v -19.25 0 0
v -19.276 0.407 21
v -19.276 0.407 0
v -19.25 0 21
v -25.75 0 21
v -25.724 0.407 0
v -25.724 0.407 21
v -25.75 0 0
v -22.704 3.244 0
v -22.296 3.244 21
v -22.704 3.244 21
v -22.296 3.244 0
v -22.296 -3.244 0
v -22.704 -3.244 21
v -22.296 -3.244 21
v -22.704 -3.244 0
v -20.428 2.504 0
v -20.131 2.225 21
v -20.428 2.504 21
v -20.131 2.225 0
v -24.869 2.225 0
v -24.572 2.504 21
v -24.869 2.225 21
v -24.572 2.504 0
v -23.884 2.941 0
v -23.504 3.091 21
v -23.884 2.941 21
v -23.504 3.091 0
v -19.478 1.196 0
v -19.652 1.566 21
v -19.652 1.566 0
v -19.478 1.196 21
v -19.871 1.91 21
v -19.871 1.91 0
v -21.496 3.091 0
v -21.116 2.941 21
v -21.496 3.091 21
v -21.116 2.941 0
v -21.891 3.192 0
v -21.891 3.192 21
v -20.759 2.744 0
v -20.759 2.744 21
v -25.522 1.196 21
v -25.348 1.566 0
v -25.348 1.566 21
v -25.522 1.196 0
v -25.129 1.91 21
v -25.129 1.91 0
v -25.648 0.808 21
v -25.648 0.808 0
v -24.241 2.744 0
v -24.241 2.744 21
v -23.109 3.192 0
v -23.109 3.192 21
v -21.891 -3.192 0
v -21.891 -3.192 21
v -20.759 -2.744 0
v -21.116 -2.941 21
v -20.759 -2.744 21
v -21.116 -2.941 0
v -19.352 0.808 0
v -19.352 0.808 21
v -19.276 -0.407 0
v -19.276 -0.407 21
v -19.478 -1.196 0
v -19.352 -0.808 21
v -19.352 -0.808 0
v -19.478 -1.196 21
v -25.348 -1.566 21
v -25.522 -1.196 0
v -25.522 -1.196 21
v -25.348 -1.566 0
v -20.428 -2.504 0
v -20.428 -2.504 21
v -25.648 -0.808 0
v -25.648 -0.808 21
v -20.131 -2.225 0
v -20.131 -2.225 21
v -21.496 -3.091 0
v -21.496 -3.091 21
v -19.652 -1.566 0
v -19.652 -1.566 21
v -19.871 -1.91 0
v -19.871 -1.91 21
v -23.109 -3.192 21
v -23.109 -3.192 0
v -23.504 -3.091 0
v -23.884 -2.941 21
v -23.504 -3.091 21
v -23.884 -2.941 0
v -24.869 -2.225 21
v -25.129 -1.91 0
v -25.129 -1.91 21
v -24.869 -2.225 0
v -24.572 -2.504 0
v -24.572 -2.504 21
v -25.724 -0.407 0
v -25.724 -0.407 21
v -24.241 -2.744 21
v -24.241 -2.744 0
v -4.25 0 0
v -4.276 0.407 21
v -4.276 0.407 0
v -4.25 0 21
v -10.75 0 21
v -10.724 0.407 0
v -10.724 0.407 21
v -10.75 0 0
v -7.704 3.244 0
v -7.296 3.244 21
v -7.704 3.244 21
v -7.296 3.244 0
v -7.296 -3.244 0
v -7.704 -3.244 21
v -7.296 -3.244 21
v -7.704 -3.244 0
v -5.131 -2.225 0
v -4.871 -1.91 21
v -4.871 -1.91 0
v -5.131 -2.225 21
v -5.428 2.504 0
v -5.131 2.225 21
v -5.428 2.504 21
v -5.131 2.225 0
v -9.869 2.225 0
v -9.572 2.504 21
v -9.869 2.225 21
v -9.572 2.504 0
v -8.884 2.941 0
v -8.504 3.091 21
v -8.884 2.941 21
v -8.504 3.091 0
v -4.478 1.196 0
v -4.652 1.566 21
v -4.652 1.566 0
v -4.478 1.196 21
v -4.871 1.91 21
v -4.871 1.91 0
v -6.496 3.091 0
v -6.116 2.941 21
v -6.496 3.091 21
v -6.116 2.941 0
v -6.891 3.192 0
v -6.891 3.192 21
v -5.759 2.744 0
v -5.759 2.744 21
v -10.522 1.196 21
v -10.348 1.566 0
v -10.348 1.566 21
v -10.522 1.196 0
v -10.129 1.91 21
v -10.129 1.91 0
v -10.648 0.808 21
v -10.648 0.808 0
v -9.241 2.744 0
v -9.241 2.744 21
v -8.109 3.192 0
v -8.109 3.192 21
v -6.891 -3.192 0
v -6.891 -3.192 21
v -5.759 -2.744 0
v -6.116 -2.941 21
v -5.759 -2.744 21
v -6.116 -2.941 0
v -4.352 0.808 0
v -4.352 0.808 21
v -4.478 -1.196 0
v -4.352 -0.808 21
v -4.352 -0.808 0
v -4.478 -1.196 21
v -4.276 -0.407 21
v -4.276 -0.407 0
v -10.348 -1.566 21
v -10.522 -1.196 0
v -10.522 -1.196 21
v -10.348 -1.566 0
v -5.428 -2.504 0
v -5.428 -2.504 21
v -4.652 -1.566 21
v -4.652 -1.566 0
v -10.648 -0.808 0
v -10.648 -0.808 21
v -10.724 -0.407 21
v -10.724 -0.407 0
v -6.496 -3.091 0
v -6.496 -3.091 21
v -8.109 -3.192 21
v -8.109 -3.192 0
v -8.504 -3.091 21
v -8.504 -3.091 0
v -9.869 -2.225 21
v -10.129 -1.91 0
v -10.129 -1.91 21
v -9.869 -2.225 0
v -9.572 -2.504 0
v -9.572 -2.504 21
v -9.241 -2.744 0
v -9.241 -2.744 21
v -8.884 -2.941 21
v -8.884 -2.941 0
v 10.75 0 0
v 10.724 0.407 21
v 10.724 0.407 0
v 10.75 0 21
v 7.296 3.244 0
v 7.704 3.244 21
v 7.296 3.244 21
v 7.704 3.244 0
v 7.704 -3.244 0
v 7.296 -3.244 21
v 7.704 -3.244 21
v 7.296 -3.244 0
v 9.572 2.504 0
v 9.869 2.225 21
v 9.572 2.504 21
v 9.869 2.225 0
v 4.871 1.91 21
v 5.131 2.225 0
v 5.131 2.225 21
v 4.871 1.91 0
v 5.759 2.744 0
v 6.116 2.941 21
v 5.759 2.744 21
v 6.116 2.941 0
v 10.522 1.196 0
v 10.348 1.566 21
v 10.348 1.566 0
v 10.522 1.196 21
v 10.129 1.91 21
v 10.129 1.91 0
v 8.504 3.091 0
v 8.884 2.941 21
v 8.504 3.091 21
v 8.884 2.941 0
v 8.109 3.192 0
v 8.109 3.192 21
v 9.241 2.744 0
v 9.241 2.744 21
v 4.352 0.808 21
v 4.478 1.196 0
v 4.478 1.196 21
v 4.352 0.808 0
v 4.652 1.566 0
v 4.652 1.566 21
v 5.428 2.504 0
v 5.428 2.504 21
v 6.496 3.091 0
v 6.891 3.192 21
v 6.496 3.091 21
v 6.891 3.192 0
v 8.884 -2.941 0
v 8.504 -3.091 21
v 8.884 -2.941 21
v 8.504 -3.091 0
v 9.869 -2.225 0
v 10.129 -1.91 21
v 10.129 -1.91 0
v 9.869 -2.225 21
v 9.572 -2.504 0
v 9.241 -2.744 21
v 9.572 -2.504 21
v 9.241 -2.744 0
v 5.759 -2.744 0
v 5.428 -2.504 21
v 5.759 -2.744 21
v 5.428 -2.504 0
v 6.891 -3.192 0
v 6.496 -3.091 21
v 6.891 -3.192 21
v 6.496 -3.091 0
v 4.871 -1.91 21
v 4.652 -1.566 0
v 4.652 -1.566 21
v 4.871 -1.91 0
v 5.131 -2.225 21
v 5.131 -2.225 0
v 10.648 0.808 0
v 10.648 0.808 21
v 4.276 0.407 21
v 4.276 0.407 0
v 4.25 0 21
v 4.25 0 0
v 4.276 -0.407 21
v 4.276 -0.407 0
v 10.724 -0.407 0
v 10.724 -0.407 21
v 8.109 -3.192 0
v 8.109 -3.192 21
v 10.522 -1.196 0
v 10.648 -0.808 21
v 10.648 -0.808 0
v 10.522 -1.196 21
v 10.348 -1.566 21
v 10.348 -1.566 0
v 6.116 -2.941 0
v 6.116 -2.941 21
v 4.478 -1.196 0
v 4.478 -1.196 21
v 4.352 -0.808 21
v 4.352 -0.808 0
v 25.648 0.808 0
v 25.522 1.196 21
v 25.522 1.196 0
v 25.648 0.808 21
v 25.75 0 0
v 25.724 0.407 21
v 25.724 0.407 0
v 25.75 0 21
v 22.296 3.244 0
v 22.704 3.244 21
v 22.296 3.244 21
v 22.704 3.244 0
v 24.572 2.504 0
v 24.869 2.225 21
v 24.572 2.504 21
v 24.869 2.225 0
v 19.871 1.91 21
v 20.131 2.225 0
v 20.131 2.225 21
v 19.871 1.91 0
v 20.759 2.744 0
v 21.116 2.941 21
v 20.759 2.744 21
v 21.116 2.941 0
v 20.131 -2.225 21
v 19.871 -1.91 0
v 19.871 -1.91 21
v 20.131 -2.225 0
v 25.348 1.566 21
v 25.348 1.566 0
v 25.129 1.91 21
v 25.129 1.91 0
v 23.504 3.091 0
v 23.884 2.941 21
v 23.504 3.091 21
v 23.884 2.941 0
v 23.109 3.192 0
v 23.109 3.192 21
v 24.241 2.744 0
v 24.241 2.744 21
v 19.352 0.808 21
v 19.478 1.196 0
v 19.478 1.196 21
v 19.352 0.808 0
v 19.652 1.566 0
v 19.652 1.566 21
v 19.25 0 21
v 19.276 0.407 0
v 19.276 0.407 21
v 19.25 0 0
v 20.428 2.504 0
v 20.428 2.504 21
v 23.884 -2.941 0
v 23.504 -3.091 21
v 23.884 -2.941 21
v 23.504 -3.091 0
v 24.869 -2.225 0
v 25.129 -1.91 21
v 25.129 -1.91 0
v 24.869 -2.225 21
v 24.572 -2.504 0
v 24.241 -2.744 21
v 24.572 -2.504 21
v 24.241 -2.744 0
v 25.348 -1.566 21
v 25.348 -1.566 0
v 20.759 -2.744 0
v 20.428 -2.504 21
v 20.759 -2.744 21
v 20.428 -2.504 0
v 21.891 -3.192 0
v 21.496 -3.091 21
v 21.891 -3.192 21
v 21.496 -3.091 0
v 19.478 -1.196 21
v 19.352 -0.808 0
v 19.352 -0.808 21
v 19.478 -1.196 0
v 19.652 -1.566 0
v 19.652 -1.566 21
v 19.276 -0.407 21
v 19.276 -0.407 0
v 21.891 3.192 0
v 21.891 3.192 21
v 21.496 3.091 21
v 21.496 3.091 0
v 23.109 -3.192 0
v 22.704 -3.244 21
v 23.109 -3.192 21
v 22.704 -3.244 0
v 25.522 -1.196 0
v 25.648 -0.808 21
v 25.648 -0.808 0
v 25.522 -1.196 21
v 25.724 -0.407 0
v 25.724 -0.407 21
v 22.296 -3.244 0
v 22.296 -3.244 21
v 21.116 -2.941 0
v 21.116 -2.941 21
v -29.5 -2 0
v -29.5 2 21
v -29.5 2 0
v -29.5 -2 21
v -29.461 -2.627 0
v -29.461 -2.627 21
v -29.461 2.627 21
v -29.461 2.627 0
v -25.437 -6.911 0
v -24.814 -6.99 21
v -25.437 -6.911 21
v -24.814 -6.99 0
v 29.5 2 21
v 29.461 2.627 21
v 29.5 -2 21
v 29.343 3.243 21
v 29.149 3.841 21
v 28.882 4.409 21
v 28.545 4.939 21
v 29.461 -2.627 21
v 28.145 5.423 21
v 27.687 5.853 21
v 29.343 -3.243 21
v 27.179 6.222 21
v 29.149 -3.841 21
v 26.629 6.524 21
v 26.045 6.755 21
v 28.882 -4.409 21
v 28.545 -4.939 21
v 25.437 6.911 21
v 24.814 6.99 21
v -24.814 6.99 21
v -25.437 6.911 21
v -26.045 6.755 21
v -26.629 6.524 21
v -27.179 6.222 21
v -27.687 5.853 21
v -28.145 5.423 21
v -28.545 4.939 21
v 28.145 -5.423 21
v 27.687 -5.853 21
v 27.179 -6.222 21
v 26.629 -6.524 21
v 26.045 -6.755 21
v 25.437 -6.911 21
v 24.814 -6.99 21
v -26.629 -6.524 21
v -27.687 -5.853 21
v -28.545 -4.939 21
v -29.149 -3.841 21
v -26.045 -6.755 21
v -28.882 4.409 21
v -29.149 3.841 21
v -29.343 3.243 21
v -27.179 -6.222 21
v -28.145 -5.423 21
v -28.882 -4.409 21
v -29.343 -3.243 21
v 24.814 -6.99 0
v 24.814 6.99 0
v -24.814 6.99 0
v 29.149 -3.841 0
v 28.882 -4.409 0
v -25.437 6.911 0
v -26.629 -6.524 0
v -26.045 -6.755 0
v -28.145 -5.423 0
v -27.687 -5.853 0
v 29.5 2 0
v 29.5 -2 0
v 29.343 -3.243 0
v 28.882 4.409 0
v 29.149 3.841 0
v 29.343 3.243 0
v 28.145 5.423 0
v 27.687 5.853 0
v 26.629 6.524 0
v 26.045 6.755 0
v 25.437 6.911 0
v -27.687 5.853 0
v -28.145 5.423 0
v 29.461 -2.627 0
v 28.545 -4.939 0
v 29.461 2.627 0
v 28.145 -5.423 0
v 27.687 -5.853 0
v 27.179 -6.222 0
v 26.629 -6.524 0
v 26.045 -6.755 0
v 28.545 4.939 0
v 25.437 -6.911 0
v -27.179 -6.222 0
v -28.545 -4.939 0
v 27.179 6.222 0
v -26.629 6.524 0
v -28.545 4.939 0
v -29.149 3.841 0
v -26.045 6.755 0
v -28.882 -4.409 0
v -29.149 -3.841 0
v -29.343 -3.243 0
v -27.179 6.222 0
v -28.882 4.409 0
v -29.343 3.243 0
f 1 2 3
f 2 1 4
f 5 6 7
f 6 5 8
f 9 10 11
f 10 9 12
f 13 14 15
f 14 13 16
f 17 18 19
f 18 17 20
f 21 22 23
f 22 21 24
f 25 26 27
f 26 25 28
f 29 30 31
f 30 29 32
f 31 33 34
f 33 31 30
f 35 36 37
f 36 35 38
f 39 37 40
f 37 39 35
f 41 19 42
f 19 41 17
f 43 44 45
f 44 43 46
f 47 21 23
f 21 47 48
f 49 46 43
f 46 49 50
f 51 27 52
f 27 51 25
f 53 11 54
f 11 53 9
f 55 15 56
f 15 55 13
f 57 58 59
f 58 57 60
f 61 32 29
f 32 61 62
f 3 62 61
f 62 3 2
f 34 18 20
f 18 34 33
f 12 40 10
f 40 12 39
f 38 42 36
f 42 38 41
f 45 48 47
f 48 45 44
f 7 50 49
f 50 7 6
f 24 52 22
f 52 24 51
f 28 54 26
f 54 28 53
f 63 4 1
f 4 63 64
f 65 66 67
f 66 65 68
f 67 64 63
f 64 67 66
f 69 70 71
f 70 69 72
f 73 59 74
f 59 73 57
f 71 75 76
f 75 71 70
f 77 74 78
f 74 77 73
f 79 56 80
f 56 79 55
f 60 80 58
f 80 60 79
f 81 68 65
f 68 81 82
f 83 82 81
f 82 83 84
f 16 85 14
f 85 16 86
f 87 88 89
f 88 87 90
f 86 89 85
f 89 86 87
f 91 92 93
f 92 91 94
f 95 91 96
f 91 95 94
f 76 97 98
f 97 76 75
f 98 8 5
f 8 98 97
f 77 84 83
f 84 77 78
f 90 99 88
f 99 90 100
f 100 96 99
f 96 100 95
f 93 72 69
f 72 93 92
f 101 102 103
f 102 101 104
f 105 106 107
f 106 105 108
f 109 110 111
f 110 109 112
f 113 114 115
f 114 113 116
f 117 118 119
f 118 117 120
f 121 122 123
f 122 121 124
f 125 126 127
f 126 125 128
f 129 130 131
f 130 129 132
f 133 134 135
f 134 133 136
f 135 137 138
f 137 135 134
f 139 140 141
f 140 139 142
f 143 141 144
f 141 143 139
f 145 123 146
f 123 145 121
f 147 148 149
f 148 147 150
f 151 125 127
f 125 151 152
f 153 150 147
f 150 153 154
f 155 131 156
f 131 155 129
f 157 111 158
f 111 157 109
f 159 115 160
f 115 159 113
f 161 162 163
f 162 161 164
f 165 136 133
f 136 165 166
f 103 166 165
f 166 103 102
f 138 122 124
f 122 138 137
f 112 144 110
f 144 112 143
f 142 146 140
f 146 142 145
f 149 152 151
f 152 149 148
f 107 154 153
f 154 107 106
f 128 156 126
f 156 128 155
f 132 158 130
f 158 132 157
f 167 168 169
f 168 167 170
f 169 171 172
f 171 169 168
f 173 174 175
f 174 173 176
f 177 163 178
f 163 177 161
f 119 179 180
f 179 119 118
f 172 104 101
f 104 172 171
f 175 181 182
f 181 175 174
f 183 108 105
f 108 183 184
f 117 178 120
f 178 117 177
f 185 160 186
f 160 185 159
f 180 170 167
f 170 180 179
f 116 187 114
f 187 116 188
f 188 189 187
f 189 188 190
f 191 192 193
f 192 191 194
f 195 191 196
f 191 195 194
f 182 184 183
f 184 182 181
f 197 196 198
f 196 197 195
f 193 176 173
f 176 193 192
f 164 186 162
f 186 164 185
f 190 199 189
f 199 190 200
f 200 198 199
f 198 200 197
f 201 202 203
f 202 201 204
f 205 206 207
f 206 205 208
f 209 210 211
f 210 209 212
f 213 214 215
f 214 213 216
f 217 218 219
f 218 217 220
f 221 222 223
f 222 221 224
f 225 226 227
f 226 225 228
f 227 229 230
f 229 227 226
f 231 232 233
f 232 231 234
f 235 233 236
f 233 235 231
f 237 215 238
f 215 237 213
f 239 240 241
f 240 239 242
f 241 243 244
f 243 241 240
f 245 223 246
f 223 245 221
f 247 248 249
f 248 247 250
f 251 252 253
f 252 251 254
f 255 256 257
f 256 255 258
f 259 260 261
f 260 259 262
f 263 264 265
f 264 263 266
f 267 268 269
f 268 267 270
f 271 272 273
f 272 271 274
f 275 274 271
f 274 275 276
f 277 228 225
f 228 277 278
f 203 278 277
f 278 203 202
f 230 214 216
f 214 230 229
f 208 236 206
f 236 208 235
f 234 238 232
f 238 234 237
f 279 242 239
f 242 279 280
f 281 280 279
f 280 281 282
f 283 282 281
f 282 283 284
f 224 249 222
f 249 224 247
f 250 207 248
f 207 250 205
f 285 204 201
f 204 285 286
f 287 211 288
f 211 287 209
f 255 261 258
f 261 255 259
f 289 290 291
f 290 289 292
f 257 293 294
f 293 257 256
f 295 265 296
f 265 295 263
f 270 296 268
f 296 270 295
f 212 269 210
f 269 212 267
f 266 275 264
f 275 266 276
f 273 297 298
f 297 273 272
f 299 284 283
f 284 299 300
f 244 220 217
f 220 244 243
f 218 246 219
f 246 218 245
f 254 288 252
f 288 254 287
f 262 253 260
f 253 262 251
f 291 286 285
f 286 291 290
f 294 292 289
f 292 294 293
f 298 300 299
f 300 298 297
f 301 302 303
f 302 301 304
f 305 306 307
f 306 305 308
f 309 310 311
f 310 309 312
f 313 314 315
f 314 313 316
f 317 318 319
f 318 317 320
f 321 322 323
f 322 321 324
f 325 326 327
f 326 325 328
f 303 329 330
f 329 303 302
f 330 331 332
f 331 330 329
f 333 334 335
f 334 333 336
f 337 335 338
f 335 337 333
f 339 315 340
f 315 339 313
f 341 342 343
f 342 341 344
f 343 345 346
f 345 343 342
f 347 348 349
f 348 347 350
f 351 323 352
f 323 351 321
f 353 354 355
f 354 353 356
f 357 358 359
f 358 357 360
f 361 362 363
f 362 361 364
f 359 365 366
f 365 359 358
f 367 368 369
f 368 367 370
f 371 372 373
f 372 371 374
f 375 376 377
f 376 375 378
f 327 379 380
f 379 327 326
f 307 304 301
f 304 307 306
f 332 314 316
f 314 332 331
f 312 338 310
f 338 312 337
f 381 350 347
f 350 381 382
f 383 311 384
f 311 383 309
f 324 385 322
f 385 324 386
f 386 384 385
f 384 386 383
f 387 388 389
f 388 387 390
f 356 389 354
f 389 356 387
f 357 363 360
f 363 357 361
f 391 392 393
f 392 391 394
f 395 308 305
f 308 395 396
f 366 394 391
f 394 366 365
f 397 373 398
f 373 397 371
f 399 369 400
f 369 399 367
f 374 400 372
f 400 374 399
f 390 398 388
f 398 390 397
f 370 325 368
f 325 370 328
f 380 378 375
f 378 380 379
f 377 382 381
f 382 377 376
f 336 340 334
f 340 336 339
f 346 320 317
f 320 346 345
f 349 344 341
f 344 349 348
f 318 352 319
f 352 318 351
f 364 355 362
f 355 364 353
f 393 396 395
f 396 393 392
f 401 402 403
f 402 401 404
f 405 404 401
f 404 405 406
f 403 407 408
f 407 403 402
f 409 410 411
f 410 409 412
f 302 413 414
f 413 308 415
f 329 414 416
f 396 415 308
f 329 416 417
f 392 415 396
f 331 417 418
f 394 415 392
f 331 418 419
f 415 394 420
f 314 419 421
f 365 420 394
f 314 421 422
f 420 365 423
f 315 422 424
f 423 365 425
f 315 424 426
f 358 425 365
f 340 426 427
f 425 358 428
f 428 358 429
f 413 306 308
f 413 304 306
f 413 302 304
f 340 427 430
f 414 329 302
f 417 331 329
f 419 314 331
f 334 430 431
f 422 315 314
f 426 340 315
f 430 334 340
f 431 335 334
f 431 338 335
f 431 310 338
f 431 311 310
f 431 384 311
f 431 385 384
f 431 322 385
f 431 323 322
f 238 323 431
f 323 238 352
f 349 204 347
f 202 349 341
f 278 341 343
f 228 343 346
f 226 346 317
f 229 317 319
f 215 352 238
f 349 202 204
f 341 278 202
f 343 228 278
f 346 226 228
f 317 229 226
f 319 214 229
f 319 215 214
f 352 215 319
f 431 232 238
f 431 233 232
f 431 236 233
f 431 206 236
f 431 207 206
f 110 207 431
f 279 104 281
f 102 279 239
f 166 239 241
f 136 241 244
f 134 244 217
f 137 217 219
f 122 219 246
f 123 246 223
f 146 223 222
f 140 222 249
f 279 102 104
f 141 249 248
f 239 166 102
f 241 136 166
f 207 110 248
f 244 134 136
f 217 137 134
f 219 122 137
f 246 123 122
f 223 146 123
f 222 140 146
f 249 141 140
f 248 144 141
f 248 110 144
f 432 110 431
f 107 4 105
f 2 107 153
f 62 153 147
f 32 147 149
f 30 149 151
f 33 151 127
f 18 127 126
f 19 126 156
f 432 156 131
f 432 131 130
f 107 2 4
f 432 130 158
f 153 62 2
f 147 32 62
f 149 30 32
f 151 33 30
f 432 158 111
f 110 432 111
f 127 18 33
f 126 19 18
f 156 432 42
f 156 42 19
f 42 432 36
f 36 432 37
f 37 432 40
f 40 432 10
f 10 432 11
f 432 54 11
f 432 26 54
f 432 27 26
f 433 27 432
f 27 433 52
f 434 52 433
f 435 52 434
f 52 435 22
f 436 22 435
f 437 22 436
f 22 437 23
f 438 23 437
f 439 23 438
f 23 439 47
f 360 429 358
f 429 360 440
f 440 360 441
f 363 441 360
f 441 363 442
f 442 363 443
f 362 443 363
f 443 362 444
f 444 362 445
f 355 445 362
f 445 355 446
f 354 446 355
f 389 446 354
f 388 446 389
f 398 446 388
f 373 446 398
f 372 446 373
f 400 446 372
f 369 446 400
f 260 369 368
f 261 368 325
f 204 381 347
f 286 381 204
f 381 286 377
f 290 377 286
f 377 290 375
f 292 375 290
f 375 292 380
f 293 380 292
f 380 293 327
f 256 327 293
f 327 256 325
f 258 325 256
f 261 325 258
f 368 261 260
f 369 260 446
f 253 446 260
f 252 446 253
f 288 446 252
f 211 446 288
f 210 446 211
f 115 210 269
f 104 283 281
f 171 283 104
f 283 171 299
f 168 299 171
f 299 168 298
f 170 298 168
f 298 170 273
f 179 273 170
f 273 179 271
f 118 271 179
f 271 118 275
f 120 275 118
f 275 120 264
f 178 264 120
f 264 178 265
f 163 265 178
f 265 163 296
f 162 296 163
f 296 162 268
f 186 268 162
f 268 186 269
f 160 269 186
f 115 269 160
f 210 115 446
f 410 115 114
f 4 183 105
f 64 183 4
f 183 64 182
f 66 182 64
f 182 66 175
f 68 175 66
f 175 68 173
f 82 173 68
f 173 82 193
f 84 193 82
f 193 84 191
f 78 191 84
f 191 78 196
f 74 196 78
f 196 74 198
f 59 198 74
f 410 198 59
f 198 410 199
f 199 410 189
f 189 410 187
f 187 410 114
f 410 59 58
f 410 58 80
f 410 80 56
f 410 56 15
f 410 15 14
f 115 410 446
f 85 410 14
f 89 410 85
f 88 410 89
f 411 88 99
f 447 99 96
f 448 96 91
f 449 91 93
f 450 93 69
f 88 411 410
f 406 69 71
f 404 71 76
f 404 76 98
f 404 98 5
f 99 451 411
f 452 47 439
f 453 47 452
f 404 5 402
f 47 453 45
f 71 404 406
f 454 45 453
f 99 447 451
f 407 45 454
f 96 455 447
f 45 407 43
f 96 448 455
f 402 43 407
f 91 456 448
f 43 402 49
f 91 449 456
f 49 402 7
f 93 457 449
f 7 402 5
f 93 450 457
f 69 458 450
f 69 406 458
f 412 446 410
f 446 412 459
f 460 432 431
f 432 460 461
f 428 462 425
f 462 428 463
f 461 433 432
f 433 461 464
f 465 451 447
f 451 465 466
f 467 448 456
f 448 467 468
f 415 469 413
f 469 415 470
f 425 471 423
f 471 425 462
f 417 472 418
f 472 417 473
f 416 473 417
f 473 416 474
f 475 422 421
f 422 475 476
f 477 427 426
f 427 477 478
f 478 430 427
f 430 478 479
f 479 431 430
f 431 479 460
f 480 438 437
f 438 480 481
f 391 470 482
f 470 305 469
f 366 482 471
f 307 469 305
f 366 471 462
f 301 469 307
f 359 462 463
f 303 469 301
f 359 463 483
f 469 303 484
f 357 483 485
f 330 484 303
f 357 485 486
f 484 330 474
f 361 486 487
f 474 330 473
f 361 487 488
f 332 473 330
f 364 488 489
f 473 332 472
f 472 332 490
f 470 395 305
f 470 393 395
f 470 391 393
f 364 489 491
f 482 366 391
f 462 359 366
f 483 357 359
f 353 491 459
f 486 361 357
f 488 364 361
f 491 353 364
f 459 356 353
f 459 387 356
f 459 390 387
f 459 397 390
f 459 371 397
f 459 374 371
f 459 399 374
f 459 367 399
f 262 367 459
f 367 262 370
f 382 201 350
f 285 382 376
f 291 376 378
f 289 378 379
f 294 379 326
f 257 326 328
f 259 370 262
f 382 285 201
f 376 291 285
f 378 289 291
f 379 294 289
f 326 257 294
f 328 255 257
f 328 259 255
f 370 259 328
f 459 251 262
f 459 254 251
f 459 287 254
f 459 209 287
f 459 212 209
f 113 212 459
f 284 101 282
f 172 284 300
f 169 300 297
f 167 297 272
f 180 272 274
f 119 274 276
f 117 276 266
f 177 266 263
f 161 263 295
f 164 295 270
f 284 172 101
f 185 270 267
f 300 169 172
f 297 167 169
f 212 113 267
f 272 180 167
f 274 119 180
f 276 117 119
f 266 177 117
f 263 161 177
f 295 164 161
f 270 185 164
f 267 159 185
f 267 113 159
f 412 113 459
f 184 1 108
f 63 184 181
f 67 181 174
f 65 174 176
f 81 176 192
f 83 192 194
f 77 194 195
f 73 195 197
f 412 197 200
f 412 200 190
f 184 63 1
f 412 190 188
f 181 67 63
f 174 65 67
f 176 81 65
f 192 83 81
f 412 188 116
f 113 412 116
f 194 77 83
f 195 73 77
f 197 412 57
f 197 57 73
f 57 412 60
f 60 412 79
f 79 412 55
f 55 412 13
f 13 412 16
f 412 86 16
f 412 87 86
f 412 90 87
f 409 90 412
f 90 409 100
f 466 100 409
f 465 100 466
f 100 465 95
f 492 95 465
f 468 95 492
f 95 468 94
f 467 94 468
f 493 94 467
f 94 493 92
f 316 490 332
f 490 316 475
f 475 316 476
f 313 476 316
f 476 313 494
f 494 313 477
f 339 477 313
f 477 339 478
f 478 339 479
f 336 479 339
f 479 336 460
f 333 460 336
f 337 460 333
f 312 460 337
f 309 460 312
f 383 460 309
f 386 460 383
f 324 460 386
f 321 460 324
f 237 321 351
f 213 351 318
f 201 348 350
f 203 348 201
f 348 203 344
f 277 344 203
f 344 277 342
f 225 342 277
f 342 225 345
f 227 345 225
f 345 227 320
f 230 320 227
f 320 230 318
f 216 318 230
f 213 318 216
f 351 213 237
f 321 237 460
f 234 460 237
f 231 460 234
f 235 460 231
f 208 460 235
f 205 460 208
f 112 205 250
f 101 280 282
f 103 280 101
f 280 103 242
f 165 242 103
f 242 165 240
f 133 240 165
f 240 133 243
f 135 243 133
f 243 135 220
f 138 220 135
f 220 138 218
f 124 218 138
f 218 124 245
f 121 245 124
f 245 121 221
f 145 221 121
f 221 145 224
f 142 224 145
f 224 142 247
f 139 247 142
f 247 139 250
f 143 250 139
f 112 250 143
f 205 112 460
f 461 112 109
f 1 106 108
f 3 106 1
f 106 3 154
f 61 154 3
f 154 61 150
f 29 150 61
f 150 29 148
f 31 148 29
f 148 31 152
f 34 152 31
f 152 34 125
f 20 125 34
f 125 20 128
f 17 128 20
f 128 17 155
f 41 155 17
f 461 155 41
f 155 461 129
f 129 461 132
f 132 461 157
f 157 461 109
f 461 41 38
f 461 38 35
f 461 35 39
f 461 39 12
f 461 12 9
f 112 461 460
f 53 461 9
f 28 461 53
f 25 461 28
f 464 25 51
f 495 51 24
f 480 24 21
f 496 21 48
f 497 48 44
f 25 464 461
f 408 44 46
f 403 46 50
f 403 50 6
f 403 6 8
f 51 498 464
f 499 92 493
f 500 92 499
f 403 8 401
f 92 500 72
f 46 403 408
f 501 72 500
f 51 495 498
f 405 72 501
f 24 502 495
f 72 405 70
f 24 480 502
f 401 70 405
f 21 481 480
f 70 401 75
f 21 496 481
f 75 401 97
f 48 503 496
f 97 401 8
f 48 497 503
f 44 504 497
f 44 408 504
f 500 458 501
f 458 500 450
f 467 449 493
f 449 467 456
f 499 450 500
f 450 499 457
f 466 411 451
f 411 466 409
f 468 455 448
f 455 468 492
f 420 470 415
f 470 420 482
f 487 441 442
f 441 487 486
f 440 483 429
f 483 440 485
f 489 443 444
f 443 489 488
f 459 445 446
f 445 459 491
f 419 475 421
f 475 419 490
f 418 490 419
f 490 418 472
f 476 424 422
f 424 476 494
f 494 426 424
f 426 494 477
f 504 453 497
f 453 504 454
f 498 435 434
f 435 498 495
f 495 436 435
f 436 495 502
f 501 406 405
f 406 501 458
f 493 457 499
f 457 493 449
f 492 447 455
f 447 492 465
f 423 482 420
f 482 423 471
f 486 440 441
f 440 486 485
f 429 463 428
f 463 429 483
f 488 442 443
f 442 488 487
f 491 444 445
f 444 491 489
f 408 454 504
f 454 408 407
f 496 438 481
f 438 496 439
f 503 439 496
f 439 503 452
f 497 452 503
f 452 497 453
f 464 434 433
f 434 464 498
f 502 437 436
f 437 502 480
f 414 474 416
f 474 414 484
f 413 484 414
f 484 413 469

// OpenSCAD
$fn = 50;


difference() {
	union() {
		hull() {
			translate(v = [-24.5000000000, 2.0000000000, 0]) {
				cylinder(h = 21, r = 5);
			}
			translate(v = [24.5000000000, 2.0000000000, 0]) {
				cylinder(h = 21, r = 5);
			}
			translate(v = [-24.5000000000, -2.0000000000, 0]) {
				cylinder(h = 21, r = 5);
			}
			translate(v = [24.5000000000, -2.0000000000, 0]) {
				cylinder(h = 21, r = 5);
			}
		}
	}
	union() {
		translate(v = [-22.5000000000, 0.0000000000, -100.0000000000]) {
			cylinder(h = 200, r = 3.2500000000);
		}
		translate(v = [-7.5000000000, 0.0000000000, -100.0000000000]) {
			cylinder(h = 200, r = 3.2500000000);
		}
		translate(v = [7.5000000000, 0.0000000000, -100.0000000000]) {
			cylinder(h = 200, r = 3.2500000000);
		}
		translate(v = [22.5000000000, 0.0000000000, -100.0000000000]) {
			cylinder(h = 200, r = 3.2500000000);
		}
	}
}
